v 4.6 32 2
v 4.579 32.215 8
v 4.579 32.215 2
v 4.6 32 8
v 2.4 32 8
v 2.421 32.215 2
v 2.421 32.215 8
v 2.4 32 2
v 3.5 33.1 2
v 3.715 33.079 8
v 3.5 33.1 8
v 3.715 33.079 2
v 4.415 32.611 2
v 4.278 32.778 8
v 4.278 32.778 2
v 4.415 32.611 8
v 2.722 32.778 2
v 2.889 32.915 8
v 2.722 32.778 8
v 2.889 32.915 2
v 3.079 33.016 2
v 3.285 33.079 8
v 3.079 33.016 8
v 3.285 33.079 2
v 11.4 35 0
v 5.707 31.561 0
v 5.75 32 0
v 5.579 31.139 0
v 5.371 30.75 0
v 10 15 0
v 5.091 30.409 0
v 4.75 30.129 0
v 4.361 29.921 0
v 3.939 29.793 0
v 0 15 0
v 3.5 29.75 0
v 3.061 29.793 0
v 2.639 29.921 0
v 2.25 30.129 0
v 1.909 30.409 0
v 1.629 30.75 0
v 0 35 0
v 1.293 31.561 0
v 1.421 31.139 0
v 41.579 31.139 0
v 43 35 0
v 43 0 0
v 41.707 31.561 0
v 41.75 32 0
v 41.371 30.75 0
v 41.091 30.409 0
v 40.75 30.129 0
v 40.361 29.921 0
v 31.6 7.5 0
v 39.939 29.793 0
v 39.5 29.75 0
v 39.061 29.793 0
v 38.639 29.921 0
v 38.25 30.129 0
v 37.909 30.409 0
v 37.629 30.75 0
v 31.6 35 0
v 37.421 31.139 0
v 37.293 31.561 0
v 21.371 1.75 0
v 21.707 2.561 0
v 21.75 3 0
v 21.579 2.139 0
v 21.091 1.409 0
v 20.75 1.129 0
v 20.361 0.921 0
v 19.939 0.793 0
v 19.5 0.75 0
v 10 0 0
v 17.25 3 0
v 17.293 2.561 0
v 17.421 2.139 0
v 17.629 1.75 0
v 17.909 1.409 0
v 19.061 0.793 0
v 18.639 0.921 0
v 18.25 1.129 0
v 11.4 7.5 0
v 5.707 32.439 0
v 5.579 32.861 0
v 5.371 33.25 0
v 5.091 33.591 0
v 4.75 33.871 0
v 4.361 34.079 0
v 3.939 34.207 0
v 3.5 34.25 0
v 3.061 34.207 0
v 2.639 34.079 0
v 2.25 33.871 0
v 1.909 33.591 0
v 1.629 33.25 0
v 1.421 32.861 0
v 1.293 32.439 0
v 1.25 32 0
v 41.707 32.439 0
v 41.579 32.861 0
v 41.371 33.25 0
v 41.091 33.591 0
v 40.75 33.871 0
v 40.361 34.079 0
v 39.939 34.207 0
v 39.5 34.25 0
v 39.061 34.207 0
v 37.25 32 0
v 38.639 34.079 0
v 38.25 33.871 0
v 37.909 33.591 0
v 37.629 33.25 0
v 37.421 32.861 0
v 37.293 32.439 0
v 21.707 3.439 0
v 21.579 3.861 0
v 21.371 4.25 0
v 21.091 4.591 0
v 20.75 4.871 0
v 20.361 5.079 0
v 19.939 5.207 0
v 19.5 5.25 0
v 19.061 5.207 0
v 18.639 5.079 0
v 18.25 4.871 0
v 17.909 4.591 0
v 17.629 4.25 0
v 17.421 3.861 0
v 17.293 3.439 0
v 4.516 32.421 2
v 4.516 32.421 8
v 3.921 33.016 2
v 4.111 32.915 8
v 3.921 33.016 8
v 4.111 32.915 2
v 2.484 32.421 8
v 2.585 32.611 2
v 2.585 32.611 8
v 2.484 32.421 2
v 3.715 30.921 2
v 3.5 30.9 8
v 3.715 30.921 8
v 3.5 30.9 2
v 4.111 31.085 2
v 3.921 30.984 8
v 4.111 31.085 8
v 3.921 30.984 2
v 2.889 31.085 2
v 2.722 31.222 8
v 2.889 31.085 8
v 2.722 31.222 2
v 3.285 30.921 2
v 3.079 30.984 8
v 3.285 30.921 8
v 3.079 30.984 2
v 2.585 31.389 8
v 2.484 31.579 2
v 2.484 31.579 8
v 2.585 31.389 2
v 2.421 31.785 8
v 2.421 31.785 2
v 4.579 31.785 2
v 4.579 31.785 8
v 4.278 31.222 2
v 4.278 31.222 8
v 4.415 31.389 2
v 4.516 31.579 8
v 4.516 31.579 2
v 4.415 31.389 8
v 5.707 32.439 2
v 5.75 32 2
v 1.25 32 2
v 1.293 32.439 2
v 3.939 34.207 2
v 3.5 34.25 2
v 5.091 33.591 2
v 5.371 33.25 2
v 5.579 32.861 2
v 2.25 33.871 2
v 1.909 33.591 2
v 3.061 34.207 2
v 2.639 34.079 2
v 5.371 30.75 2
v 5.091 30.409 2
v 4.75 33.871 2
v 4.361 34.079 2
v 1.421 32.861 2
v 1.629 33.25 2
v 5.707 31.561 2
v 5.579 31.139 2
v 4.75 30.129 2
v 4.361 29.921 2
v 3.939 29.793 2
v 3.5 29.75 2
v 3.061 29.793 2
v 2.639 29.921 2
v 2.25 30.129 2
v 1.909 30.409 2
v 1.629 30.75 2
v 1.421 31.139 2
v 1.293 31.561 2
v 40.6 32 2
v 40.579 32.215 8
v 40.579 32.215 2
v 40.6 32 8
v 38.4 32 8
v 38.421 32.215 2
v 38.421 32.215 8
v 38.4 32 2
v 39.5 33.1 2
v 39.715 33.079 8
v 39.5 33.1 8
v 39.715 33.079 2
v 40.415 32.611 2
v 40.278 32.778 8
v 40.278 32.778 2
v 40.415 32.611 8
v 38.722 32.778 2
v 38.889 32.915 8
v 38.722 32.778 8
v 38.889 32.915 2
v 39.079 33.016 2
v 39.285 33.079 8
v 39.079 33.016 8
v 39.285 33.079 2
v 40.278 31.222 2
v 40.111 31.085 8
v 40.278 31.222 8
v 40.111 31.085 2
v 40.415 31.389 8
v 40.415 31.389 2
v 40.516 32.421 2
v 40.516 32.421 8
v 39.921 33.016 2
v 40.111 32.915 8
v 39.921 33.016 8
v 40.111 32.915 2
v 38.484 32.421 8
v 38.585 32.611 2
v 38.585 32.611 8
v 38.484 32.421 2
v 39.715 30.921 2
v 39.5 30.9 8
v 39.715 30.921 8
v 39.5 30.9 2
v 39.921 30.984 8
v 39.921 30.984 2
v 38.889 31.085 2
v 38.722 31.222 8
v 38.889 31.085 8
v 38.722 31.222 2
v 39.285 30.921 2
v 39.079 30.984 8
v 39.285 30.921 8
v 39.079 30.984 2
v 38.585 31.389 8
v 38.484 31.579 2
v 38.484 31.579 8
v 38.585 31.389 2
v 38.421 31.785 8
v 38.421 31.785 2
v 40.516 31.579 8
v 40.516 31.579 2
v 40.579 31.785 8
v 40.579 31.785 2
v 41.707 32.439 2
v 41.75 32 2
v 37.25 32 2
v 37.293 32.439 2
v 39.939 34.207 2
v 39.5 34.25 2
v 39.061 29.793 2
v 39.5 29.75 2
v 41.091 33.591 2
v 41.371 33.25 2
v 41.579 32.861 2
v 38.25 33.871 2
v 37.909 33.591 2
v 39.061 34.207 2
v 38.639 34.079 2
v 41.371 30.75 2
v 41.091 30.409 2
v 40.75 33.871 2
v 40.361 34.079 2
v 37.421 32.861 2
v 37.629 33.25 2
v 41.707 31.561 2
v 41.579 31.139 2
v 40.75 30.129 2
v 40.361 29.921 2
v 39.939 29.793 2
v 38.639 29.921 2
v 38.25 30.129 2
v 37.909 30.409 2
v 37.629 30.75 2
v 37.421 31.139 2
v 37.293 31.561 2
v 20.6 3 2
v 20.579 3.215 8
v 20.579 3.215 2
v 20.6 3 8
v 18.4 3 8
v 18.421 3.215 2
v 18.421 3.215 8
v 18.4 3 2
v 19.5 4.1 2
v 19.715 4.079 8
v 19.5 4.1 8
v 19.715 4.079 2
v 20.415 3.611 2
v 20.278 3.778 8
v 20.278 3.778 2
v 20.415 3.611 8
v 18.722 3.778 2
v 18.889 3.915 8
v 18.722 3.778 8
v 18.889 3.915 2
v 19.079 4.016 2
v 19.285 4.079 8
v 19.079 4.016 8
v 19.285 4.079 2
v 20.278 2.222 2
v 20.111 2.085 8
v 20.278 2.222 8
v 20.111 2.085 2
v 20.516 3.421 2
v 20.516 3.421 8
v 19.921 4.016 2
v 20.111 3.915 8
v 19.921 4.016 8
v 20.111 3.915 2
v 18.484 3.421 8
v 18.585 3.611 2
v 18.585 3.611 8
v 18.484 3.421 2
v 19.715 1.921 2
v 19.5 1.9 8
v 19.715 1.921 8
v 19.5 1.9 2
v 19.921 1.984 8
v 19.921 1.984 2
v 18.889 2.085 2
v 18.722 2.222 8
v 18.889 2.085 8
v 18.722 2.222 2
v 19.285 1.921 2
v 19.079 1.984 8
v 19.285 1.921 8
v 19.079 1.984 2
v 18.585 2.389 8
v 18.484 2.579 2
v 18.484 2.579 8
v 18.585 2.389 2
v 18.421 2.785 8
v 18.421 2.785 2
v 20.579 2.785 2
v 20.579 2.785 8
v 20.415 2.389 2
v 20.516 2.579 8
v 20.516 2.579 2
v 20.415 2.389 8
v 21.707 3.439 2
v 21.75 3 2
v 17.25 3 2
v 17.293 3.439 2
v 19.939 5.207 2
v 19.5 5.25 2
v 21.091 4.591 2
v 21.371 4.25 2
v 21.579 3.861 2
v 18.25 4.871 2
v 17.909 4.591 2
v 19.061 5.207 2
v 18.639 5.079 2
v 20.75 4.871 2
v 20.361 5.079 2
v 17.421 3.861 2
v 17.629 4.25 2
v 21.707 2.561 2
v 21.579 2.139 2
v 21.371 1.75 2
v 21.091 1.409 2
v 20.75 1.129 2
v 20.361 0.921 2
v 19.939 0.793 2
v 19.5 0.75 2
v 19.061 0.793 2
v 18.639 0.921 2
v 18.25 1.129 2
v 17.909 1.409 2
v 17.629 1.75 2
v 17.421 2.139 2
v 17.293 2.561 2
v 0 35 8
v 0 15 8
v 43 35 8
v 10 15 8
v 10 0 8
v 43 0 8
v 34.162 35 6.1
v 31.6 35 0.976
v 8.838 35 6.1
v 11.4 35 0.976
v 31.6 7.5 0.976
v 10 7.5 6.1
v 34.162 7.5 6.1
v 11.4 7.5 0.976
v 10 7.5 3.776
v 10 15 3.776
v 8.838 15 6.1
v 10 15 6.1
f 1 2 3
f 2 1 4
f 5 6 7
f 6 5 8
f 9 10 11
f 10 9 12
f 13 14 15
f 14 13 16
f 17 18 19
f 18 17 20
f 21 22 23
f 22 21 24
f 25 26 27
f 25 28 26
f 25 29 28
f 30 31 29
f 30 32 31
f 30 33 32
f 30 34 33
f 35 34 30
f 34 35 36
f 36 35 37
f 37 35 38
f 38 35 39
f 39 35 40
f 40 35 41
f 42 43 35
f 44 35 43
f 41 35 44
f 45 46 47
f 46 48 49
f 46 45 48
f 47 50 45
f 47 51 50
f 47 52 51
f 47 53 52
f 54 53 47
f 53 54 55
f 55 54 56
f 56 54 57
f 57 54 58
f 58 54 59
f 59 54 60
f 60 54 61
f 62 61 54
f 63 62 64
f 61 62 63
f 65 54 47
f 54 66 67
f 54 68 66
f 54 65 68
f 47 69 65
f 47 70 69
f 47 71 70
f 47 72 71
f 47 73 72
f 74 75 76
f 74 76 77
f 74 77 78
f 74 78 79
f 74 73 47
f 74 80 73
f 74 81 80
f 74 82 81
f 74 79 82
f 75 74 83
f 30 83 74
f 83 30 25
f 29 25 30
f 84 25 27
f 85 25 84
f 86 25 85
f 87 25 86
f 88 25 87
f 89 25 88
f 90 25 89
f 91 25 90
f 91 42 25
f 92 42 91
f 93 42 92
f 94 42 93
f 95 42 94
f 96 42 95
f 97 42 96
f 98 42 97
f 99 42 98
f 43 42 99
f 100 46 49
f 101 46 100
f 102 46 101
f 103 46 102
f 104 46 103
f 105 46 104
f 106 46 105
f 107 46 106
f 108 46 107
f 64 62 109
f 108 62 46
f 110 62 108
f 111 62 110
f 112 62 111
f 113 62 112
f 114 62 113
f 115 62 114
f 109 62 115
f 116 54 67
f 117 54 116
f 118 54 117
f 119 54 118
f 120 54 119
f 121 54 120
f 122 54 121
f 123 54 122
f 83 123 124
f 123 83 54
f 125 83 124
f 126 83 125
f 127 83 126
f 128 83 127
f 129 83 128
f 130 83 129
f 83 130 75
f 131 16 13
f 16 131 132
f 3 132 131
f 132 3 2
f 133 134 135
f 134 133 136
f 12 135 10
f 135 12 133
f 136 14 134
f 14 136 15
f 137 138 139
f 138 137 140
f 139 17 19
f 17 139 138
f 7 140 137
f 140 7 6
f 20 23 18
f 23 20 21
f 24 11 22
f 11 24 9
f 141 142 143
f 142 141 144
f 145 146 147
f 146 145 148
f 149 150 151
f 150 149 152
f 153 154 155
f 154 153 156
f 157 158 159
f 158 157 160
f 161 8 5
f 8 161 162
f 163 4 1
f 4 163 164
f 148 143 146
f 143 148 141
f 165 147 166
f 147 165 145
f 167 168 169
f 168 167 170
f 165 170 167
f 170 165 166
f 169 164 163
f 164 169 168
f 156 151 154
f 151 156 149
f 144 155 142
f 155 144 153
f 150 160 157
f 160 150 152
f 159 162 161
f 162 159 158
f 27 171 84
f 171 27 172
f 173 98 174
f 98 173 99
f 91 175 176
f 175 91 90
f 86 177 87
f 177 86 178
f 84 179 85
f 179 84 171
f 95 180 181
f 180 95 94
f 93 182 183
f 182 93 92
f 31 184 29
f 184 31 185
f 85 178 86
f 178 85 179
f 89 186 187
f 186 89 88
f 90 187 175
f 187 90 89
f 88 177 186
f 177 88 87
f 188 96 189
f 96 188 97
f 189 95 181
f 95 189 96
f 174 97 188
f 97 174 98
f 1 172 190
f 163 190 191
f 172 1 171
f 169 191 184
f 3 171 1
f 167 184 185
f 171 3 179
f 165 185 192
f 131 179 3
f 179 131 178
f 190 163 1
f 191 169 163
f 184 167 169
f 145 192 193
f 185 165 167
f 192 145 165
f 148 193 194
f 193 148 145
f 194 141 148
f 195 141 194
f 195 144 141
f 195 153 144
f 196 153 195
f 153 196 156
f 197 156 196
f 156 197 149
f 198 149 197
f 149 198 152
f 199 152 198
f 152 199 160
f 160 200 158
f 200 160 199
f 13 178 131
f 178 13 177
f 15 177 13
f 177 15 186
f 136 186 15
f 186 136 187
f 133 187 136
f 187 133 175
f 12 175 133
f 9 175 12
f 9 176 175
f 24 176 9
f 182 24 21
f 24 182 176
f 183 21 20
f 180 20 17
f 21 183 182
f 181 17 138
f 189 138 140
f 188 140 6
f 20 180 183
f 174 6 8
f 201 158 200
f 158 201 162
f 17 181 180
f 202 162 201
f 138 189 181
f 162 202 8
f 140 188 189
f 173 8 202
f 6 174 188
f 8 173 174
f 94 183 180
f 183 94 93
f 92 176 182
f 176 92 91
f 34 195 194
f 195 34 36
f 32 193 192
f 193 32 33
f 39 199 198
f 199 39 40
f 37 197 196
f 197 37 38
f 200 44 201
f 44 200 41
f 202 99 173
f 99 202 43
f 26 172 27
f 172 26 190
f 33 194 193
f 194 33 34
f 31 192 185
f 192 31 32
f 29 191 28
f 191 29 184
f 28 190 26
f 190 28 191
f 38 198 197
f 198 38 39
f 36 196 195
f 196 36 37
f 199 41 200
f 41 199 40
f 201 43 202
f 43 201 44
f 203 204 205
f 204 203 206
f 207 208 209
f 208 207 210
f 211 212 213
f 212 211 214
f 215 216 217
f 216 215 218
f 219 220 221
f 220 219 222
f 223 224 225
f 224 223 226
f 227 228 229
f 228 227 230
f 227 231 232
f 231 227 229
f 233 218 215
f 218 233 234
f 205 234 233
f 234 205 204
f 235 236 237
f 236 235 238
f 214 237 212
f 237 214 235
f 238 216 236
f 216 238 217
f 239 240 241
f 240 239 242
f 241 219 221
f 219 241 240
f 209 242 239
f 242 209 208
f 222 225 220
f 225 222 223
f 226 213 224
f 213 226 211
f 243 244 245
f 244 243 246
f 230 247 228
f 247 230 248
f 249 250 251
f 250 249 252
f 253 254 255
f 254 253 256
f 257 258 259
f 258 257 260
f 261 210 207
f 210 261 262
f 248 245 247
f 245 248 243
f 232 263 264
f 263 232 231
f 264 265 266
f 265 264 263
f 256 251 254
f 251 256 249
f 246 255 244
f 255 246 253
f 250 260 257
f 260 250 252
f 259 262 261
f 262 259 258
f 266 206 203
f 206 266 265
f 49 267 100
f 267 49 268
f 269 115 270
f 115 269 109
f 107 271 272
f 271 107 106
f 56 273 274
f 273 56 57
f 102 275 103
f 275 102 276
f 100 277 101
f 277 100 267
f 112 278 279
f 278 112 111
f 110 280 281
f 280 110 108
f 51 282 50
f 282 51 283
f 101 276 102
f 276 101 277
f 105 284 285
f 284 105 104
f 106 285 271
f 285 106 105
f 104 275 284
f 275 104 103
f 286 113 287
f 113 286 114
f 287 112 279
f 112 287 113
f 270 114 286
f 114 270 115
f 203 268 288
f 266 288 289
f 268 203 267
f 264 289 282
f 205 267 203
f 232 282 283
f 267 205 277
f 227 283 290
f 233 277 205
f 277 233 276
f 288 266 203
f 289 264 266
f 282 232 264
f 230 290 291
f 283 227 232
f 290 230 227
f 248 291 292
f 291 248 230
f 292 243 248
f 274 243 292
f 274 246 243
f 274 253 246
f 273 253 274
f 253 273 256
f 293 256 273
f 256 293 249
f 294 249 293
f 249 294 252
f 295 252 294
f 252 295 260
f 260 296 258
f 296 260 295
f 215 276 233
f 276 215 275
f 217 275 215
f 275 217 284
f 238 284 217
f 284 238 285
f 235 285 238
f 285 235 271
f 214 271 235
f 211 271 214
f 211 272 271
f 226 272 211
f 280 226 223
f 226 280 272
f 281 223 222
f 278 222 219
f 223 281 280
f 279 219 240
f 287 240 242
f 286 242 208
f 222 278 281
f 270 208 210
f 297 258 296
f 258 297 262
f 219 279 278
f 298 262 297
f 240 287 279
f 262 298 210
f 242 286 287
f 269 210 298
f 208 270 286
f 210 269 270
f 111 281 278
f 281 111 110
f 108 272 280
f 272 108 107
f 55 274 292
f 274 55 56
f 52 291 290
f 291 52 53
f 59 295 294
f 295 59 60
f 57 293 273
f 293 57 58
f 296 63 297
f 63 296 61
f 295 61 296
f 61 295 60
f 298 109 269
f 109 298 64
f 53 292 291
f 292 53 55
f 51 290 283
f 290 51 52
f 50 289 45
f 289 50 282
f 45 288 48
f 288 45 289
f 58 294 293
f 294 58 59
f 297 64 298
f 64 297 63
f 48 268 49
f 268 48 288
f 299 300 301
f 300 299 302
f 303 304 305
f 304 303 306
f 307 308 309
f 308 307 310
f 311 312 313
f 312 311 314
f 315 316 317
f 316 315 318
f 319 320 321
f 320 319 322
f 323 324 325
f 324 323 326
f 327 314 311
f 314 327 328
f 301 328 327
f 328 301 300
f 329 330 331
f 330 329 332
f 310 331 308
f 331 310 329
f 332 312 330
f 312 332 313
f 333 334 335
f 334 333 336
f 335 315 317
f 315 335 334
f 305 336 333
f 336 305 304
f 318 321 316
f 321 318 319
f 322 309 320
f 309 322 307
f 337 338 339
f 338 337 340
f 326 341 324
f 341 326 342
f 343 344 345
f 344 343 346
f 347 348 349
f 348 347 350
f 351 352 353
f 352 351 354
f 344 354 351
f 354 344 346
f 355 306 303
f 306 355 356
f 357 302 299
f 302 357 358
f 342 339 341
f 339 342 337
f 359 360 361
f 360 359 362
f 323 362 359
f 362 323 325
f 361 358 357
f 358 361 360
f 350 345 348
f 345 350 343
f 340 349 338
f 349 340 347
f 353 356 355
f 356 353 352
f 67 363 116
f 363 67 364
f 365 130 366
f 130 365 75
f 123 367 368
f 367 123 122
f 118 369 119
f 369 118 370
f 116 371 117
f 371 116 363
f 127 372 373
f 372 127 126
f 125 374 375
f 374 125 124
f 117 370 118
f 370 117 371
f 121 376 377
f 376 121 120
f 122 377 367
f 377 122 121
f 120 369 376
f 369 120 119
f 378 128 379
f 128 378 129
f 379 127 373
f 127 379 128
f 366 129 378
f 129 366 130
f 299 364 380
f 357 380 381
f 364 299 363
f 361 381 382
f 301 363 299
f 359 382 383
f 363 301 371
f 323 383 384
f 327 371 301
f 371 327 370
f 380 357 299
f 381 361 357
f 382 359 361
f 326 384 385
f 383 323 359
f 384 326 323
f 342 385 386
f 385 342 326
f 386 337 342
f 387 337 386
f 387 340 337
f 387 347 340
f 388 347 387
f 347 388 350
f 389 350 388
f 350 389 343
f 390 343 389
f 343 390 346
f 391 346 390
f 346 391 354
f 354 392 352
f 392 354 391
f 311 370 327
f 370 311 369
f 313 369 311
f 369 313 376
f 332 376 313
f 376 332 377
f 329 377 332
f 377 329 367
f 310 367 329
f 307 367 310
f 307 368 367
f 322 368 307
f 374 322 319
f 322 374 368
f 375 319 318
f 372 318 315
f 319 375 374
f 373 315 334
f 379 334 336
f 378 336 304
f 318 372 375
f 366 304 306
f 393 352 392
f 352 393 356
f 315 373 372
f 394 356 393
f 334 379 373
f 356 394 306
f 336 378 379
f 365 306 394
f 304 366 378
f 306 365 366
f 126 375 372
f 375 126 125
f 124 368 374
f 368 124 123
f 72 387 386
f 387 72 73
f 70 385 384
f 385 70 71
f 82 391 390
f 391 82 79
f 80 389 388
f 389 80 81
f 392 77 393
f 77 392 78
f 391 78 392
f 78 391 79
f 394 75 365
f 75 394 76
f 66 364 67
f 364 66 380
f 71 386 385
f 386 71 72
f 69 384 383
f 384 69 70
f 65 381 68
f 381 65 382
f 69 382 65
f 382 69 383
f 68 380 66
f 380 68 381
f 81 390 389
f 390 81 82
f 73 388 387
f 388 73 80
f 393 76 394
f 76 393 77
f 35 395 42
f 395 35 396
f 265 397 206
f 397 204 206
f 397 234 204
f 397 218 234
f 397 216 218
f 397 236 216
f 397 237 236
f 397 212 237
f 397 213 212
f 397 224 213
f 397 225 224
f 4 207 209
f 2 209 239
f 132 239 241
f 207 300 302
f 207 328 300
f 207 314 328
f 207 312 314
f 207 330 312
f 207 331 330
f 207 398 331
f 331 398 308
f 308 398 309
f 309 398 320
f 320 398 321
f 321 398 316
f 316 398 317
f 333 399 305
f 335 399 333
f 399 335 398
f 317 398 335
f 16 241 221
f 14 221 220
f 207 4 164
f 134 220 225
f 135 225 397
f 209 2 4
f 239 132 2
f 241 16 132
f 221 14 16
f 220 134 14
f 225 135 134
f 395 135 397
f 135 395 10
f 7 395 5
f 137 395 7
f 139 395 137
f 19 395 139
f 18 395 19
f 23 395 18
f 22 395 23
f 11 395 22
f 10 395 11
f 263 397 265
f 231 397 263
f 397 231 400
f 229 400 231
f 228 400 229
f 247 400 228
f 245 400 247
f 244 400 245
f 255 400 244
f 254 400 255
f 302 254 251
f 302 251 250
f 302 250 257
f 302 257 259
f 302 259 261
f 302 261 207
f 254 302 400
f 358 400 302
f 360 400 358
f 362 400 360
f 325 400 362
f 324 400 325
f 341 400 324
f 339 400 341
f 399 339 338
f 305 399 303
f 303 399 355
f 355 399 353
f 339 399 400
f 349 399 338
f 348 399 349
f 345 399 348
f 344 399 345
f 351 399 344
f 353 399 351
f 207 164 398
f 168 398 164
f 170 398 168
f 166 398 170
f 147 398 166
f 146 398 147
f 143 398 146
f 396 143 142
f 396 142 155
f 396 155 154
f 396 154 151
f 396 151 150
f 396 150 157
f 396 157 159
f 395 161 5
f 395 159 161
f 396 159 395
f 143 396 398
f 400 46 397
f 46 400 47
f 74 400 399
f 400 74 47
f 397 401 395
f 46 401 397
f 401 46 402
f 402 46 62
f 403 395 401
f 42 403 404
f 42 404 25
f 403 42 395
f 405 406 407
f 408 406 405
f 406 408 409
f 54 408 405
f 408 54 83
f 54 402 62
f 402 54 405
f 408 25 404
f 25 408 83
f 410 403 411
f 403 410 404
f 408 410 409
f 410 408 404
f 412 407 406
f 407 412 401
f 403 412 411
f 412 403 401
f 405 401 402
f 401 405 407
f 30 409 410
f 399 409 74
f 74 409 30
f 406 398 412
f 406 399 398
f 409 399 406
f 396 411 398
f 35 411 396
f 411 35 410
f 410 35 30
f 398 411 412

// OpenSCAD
$fn=32;
difference() {
    cube([43, 35, 8]);
    
    translate([-12.5 + 43/2, -12.5+20, 6])
    rotate([-90, 0, 0])
    linear_extrude(35)
    offset(delta=0.1)
    polygon([[0,0],
             [25,0],
             [22.5, 5],
             [22.5, 6],
             [2.5, 6],
             [2.5,5]]);
    
    cube([10, 15, 10]);
    
    translate([3.5, 35-3, 0]) {
        cylinder(d=2.2, h=10);
        cylinder(h=2, d=4.5);
    }
    translate([43-3.5, 35-3, 0]) {
        cylinder(d=2.2, h=10);
        cylinder(h=2, d=4.5);
    }
    translate([3.5+16, 3, 0]) {
        cylinder(d=2.2, h=10);
        cylinder(h=2, d=4.5);
    }
}
